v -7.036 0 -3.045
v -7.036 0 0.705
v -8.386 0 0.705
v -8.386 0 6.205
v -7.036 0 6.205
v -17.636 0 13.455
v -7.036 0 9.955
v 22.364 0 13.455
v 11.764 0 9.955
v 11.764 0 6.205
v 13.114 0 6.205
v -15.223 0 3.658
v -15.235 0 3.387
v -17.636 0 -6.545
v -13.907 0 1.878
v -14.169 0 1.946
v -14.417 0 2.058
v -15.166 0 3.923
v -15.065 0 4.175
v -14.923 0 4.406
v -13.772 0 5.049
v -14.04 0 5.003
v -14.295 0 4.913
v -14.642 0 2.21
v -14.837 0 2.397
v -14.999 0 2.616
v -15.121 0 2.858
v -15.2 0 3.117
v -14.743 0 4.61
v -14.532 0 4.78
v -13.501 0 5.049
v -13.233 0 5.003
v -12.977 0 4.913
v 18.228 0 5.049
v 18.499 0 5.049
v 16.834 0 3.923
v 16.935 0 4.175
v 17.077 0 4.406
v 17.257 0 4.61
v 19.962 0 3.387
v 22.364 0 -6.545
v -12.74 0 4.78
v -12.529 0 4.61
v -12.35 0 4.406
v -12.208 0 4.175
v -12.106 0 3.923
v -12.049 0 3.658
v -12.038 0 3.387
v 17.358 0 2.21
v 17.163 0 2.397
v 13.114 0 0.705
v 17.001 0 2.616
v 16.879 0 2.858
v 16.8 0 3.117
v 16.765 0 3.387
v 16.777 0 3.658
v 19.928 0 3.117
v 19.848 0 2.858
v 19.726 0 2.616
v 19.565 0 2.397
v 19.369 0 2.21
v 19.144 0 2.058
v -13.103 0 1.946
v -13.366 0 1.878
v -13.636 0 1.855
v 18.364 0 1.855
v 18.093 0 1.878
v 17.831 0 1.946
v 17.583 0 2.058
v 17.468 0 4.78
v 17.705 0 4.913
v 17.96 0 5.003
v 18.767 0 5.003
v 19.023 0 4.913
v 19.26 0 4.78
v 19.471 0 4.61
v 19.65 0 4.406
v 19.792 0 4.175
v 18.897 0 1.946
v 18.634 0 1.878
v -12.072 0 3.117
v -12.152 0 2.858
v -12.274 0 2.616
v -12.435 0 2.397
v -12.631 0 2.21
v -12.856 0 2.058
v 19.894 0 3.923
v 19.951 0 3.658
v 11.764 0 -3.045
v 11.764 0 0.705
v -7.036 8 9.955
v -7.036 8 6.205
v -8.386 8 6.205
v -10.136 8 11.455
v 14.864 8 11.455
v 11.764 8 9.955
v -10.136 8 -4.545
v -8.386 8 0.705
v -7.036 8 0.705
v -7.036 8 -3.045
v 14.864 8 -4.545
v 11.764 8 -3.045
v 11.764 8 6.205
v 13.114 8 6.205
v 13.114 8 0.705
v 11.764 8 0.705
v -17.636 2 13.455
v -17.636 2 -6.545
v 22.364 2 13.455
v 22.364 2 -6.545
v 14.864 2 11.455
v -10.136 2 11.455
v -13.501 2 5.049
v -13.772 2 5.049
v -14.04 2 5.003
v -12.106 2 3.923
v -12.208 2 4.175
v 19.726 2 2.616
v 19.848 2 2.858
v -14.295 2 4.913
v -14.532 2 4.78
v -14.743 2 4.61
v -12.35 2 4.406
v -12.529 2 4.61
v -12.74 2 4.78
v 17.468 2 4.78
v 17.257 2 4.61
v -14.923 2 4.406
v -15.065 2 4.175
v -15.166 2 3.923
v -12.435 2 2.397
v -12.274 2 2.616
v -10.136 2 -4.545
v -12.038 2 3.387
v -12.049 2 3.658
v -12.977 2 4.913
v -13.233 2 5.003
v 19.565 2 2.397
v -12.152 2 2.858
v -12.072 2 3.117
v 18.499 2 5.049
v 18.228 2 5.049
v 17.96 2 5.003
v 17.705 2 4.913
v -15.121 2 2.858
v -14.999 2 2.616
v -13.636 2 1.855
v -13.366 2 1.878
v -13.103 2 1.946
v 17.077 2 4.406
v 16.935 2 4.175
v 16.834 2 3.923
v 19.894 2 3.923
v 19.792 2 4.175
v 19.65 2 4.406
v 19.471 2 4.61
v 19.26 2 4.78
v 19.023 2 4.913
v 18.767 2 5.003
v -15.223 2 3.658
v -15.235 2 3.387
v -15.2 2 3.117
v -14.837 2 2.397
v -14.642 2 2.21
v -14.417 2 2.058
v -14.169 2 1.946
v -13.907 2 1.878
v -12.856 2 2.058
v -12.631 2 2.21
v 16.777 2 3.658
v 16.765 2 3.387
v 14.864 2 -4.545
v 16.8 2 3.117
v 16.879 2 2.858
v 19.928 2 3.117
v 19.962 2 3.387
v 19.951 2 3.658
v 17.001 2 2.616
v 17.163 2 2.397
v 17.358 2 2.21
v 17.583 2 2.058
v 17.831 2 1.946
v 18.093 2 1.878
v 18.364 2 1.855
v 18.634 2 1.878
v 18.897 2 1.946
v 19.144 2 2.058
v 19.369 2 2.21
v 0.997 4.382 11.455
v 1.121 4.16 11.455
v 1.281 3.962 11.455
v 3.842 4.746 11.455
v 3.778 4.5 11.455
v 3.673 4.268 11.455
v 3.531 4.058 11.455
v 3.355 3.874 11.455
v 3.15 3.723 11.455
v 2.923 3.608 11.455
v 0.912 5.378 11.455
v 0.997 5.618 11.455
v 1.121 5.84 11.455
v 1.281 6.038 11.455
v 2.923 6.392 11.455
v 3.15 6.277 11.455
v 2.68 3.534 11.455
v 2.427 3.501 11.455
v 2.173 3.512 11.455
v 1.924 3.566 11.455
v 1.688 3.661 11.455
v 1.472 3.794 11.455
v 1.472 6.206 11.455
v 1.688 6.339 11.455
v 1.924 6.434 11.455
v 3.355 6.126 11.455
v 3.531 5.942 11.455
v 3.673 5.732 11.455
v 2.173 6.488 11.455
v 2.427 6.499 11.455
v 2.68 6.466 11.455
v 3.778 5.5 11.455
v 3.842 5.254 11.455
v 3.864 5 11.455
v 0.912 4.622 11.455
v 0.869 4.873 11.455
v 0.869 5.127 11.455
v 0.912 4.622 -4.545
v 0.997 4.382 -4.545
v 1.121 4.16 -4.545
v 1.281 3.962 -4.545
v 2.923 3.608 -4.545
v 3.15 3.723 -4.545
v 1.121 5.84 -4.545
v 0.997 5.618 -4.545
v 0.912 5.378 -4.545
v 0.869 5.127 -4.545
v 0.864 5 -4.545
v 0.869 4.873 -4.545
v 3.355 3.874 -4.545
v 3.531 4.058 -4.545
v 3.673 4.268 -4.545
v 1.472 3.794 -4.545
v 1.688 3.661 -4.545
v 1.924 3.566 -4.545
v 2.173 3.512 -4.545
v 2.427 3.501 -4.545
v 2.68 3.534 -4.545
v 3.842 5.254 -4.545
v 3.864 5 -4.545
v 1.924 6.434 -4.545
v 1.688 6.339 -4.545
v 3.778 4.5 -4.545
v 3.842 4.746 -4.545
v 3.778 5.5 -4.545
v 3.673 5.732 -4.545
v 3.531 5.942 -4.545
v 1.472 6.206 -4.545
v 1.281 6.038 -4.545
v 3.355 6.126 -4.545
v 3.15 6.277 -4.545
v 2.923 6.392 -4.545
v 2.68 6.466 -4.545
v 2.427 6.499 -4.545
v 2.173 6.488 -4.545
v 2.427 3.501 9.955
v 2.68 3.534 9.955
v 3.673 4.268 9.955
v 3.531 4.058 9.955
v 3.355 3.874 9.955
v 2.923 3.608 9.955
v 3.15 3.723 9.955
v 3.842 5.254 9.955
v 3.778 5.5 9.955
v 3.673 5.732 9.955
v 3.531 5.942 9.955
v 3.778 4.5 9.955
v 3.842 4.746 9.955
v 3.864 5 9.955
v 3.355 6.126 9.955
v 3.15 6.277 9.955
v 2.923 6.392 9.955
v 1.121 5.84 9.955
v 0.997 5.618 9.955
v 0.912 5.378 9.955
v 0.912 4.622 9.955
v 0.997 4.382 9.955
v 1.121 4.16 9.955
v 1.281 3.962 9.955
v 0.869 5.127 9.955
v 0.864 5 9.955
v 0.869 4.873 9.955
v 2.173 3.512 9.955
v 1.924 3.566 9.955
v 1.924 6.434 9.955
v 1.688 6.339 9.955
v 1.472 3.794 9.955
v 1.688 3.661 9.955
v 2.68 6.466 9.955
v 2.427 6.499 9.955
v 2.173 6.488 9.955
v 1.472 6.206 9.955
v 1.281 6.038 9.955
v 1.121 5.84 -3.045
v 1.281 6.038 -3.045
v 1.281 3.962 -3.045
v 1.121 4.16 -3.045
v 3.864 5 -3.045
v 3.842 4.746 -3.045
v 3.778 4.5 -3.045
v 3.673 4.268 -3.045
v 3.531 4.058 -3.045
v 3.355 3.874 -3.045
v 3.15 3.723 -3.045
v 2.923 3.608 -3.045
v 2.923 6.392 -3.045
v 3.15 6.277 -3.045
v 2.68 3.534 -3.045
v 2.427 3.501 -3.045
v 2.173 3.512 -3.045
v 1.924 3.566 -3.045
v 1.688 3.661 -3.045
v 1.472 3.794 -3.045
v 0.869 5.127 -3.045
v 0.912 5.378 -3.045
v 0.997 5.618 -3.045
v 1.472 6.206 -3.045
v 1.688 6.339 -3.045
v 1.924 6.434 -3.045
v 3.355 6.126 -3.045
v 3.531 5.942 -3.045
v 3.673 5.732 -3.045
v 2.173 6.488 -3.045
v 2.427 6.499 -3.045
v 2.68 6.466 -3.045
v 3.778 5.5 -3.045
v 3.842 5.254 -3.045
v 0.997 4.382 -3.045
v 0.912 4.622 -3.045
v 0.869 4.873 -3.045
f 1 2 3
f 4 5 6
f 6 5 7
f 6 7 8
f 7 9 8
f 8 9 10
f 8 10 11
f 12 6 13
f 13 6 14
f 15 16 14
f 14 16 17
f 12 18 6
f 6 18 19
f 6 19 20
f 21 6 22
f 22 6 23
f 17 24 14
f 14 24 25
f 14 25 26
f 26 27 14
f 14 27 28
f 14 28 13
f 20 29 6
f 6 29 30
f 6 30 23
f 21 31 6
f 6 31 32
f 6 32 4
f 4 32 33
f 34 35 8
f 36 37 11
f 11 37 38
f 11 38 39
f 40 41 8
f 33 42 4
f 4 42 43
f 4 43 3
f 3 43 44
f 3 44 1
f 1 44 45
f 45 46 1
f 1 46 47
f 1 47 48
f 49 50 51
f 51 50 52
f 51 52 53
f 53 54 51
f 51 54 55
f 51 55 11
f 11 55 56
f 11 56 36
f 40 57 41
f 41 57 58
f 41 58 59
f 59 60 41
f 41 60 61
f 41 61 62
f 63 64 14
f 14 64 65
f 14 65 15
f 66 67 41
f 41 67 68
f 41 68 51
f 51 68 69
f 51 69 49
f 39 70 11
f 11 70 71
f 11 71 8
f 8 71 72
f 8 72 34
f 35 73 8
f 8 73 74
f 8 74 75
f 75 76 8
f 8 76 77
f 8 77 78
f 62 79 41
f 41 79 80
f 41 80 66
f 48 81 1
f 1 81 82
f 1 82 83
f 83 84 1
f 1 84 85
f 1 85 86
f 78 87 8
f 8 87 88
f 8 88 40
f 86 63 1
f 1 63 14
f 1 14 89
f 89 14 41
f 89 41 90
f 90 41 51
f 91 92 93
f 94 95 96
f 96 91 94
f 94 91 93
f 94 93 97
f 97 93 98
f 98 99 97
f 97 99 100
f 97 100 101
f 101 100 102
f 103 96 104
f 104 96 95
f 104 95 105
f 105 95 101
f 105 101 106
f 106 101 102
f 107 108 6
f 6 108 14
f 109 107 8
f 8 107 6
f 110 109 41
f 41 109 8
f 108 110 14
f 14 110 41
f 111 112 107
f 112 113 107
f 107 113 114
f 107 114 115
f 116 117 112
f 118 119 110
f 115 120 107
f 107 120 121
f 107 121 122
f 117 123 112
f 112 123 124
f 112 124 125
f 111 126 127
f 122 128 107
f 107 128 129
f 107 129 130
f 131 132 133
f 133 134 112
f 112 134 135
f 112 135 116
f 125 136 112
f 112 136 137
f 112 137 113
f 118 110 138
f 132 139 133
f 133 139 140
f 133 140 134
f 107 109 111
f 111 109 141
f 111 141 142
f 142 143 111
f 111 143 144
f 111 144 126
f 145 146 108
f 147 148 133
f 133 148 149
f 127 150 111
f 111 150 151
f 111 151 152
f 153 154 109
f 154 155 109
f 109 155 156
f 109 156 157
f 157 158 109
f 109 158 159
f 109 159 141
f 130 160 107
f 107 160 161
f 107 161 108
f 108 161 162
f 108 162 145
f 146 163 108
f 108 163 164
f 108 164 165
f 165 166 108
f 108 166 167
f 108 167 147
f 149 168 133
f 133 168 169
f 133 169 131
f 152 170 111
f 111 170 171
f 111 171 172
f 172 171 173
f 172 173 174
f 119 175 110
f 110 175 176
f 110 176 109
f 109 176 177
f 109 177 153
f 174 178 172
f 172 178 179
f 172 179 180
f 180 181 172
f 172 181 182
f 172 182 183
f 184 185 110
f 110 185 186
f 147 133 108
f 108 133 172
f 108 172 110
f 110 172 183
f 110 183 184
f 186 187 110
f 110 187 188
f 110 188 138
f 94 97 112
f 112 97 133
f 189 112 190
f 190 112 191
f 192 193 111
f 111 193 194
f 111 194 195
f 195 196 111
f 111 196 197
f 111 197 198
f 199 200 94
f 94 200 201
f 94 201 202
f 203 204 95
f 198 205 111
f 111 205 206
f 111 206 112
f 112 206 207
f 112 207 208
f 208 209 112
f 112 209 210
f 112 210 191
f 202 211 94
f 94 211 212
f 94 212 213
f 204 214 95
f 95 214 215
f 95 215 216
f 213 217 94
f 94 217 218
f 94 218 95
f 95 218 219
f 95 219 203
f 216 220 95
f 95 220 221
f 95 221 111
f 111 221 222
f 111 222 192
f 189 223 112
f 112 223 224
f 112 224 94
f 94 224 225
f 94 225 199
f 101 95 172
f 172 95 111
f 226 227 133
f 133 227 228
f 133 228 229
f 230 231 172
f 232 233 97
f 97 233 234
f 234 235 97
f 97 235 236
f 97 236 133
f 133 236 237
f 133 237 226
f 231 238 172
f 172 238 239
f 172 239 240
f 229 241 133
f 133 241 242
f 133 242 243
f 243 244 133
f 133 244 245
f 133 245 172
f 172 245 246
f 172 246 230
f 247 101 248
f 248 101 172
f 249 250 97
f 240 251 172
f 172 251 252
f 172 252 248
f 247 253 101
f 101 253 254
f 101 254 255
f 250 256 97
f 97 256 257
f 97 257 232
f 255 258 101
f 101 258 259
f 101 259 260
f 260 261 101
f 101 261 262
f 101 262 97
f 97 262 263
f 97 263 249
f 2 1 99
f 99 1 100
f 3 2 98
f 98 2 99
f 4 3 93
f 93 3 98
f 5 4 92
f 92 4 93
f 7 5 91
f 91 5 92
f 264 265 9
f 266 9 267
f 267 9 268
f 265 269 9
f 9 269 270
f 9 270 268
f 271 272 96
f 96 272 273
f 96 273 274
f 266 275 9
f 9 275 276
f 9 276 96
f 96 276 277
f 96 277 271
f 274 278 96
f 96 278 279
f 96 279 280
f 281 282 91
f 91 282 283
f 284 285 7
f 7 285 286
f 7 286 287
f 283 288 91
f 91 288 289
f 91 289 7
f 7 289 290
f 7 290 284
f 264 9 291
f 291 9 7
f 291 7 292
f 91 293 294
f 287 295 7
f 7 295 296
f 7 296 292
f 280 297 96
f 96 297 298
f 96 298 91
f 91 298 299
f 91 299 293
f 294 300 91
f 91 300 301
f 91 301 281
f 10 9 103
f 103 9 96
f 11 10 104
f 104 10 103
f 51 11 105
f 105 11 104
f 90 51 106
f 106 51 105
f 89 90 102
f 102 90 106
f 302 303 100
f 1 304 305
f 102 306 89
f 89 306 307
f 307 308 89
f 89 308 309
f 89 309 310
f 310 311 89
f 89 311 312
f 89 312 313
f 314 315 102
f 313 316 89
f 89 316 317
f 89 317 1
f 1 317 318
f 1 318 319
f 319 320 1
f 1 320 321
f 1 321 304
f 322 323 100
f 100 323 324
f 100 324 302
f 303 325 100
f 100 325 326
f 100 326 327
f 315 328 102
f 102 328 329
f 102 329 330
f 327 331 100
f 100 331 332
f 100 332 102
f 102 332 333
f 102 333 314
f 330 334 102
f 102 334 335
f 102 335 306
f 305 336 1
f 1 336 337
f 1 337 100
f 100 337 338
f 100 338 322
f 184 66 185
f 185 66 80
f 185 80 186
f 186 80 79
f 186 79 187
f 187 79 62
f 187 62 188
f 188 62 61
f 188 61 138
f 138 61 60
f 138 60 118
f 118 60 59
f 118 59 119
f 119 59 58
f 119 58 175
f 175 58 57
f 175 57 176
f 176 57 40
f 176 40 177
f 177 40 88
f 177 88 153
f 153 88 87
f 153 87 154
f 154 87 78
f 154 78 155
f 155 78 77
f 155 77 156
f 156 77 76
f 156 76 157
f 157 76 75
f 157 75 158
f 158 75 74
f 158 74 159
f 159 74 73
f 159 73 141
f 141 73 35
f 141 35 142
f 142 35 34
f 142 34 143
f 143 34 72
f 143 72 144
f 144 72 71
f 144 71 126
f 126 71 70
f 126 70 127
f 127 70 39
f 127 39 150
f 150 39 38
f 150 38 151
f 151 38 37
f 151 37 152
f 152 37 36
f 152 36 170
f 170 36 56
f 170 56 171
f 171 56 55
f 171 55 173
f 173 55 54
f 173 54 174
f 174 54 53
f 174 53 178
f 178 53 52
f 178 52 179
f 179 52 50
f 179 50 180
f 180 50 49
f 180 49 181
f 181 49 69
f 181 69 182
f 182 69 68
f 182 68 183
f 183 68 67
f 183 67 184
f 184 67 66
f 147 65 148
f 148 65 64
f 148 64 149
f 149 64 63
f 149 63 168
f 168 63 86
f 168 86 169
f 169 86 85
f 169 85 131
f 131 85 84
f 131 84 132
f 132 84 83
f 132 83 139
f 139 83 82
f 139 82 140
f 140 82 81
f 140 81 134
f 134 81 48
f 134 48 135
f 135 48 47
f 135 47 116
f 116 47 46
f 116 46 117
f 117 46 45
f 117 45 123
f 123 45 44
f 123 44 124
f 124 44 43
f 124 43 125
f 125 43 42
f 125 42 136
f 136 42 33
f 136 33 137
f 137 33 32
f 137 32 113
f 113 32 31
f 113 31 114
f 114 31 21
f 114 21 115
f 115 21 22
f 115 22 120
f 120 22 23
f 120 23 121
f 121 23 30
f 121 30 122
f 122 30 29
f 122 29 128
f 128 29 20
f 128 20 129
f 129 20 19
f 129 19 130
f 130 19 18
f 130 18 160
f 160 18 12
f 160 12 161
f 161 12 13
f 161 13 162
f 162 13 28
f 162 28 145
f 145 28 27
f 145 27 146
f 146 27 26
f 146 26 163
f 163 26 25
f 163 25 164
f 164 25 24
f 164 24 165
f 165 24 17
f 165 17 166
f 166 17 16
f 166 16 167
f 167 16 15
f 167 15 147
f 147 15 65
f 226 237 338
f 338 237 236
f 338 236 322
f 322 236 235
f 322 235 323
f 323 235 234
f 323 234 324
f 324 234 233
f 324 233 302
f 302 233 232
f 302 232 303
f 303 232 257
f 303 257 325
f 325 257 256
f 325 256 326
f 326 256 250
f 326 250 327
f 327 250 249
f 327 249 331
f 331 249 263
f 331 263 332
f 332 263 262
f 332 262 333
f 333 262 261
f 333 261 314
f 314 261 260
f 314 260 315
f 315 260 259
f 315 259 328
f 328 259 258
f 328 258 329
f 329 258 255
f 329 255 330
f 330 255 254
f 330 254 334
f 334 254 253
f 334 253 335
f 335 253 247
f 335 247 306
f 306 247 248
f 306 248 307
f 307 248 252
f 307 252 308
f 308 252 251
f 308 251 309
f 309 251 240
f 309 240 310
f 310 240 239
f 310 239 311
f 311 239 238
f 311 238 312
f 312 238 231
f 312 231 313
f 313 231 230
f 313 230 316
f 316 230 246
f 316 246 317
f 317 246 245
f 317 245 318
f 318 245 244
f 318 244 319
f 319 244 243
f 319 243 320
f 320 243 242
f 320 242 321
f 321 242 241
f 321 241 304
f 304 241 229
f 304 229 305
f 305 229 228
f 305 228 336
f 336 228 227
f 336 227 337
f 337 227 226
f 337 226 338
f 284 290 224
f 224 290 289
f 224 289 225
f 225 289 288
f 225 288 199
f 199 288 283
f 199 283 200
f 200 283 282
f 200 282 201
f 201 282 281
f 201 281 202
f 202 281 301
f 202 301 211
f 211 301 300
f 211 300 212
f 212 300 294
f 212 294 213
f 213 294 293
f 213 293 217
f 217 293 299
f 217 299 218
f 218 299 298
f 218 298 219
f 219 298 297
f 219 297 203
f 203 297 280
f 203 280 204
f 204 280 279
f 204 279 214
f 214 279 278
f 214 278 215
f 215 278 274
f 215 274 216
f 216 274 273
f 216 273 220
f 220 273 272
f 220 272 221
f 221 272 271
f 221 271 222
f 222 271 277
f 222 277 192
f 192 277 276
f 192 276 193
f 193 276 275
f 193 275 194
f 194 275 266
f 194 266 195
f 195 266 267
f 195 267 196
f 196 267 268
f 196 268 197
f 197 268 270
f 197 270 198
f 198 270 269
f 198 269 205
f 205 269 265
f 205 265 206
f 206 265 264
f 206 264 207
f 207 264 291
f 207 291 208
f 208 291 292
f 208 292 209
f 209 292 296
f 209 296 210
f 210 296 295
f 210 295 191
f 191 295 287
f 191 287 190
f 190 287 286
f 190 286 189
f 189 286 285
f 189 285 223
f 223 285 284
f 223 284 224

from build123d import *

# Parameters (mm, degrees)
SKETCH2_W           = 40
SKETCH2_H           = 20
BOSS_EXTRUDE1_DEPTH = 2
SKETCH3_W           = 25
SKETCH3_H           = 16
BOSS_EXTRUDE2_DEPTH = 8
CUT_EXTRUDE1_DEPTH  = 10
SKETCH5_R           = 1.6
CUT_EXTRUDE2_DEPTH  = 10
SKETCH6_R           = 1.5
CUT_EXTRUDE3_DEPTH  = 30


with BuildPart() as part:
    # Sketch2 → Boss-Extrude1 (new body)
    with BuildSketch(Plane(origin=(0, 0, 0), x_dir=(1, 0, 0), z_dir=(0, 1, 0))):
        with Locations((2.363636364, -3.454545455)):
            Rectangle(SKETCH2_W, SKETCH2_H)
    extrude(amount=BOSS_EXTRUDE1_DEPTH)

    # Sketch3 → Boss-Extrude2 (add)
    with BuildSketch(Plane.XZ):
        with Locations((2.363636364, 3.454545455)):
            Rectangle(SKETCH3_W, SKETCH3_H)
    extrude(amount=-BOSS_EXTRUDE2_DEPTH)

    # Sketch1 → Cut-Extrude1 (cut)
    with BuildSketch(Plane(origin=(0, 0, 0), x_dir=(1, 0, 0), z_dir=(0, 1, 0))):
        Polygon((-7.036363636, 3.045454545), (11.763636364, 3.045454545), (11.763636364, -0.704545455), (13.113636364, -0.704545455), (13.113636364, -6.204545455), (11.763636364, -6.204545455), (11.763636364, -9.954545455), (-7.036363636, -9.954545455), (-7.036363636, -6.204545455), (-8.386363636, -6.204545455), (-8.386363636, -0.704545455), (-7.036363636, -0.704545455), align=None)
    extrude(amount=CUT_EXTRUDE1_DEPTH, mode=Mode.SUBTRACT)

    # Sketch5 → Cut-Extrude2 (cut)
    with BuildSketch(Plane.XZ):
        with Locations((18.363636364, 3.454545455)):
            Circle(SKETCH5_R)
        with Locations((-13.636363636, 3.454545455)):
            Circle(SKETCH5_R)
    extrude(amount=-CUT_EXTRUDE2_DEPTH, mode=Mode.SUBTRACT)

    # Sketch6 → Cut-Extrude3 (cut)
    with BuildSketch(Plane.XY.offset(11.454545455)):
        with Locations((2.363636364, 5)):
            Circle(SKETCH6_R)
    extrude(amount=-CUT_EXTRUDE3_DEPTH, mode=Mode.SUBTRACT)


solid = part.part
